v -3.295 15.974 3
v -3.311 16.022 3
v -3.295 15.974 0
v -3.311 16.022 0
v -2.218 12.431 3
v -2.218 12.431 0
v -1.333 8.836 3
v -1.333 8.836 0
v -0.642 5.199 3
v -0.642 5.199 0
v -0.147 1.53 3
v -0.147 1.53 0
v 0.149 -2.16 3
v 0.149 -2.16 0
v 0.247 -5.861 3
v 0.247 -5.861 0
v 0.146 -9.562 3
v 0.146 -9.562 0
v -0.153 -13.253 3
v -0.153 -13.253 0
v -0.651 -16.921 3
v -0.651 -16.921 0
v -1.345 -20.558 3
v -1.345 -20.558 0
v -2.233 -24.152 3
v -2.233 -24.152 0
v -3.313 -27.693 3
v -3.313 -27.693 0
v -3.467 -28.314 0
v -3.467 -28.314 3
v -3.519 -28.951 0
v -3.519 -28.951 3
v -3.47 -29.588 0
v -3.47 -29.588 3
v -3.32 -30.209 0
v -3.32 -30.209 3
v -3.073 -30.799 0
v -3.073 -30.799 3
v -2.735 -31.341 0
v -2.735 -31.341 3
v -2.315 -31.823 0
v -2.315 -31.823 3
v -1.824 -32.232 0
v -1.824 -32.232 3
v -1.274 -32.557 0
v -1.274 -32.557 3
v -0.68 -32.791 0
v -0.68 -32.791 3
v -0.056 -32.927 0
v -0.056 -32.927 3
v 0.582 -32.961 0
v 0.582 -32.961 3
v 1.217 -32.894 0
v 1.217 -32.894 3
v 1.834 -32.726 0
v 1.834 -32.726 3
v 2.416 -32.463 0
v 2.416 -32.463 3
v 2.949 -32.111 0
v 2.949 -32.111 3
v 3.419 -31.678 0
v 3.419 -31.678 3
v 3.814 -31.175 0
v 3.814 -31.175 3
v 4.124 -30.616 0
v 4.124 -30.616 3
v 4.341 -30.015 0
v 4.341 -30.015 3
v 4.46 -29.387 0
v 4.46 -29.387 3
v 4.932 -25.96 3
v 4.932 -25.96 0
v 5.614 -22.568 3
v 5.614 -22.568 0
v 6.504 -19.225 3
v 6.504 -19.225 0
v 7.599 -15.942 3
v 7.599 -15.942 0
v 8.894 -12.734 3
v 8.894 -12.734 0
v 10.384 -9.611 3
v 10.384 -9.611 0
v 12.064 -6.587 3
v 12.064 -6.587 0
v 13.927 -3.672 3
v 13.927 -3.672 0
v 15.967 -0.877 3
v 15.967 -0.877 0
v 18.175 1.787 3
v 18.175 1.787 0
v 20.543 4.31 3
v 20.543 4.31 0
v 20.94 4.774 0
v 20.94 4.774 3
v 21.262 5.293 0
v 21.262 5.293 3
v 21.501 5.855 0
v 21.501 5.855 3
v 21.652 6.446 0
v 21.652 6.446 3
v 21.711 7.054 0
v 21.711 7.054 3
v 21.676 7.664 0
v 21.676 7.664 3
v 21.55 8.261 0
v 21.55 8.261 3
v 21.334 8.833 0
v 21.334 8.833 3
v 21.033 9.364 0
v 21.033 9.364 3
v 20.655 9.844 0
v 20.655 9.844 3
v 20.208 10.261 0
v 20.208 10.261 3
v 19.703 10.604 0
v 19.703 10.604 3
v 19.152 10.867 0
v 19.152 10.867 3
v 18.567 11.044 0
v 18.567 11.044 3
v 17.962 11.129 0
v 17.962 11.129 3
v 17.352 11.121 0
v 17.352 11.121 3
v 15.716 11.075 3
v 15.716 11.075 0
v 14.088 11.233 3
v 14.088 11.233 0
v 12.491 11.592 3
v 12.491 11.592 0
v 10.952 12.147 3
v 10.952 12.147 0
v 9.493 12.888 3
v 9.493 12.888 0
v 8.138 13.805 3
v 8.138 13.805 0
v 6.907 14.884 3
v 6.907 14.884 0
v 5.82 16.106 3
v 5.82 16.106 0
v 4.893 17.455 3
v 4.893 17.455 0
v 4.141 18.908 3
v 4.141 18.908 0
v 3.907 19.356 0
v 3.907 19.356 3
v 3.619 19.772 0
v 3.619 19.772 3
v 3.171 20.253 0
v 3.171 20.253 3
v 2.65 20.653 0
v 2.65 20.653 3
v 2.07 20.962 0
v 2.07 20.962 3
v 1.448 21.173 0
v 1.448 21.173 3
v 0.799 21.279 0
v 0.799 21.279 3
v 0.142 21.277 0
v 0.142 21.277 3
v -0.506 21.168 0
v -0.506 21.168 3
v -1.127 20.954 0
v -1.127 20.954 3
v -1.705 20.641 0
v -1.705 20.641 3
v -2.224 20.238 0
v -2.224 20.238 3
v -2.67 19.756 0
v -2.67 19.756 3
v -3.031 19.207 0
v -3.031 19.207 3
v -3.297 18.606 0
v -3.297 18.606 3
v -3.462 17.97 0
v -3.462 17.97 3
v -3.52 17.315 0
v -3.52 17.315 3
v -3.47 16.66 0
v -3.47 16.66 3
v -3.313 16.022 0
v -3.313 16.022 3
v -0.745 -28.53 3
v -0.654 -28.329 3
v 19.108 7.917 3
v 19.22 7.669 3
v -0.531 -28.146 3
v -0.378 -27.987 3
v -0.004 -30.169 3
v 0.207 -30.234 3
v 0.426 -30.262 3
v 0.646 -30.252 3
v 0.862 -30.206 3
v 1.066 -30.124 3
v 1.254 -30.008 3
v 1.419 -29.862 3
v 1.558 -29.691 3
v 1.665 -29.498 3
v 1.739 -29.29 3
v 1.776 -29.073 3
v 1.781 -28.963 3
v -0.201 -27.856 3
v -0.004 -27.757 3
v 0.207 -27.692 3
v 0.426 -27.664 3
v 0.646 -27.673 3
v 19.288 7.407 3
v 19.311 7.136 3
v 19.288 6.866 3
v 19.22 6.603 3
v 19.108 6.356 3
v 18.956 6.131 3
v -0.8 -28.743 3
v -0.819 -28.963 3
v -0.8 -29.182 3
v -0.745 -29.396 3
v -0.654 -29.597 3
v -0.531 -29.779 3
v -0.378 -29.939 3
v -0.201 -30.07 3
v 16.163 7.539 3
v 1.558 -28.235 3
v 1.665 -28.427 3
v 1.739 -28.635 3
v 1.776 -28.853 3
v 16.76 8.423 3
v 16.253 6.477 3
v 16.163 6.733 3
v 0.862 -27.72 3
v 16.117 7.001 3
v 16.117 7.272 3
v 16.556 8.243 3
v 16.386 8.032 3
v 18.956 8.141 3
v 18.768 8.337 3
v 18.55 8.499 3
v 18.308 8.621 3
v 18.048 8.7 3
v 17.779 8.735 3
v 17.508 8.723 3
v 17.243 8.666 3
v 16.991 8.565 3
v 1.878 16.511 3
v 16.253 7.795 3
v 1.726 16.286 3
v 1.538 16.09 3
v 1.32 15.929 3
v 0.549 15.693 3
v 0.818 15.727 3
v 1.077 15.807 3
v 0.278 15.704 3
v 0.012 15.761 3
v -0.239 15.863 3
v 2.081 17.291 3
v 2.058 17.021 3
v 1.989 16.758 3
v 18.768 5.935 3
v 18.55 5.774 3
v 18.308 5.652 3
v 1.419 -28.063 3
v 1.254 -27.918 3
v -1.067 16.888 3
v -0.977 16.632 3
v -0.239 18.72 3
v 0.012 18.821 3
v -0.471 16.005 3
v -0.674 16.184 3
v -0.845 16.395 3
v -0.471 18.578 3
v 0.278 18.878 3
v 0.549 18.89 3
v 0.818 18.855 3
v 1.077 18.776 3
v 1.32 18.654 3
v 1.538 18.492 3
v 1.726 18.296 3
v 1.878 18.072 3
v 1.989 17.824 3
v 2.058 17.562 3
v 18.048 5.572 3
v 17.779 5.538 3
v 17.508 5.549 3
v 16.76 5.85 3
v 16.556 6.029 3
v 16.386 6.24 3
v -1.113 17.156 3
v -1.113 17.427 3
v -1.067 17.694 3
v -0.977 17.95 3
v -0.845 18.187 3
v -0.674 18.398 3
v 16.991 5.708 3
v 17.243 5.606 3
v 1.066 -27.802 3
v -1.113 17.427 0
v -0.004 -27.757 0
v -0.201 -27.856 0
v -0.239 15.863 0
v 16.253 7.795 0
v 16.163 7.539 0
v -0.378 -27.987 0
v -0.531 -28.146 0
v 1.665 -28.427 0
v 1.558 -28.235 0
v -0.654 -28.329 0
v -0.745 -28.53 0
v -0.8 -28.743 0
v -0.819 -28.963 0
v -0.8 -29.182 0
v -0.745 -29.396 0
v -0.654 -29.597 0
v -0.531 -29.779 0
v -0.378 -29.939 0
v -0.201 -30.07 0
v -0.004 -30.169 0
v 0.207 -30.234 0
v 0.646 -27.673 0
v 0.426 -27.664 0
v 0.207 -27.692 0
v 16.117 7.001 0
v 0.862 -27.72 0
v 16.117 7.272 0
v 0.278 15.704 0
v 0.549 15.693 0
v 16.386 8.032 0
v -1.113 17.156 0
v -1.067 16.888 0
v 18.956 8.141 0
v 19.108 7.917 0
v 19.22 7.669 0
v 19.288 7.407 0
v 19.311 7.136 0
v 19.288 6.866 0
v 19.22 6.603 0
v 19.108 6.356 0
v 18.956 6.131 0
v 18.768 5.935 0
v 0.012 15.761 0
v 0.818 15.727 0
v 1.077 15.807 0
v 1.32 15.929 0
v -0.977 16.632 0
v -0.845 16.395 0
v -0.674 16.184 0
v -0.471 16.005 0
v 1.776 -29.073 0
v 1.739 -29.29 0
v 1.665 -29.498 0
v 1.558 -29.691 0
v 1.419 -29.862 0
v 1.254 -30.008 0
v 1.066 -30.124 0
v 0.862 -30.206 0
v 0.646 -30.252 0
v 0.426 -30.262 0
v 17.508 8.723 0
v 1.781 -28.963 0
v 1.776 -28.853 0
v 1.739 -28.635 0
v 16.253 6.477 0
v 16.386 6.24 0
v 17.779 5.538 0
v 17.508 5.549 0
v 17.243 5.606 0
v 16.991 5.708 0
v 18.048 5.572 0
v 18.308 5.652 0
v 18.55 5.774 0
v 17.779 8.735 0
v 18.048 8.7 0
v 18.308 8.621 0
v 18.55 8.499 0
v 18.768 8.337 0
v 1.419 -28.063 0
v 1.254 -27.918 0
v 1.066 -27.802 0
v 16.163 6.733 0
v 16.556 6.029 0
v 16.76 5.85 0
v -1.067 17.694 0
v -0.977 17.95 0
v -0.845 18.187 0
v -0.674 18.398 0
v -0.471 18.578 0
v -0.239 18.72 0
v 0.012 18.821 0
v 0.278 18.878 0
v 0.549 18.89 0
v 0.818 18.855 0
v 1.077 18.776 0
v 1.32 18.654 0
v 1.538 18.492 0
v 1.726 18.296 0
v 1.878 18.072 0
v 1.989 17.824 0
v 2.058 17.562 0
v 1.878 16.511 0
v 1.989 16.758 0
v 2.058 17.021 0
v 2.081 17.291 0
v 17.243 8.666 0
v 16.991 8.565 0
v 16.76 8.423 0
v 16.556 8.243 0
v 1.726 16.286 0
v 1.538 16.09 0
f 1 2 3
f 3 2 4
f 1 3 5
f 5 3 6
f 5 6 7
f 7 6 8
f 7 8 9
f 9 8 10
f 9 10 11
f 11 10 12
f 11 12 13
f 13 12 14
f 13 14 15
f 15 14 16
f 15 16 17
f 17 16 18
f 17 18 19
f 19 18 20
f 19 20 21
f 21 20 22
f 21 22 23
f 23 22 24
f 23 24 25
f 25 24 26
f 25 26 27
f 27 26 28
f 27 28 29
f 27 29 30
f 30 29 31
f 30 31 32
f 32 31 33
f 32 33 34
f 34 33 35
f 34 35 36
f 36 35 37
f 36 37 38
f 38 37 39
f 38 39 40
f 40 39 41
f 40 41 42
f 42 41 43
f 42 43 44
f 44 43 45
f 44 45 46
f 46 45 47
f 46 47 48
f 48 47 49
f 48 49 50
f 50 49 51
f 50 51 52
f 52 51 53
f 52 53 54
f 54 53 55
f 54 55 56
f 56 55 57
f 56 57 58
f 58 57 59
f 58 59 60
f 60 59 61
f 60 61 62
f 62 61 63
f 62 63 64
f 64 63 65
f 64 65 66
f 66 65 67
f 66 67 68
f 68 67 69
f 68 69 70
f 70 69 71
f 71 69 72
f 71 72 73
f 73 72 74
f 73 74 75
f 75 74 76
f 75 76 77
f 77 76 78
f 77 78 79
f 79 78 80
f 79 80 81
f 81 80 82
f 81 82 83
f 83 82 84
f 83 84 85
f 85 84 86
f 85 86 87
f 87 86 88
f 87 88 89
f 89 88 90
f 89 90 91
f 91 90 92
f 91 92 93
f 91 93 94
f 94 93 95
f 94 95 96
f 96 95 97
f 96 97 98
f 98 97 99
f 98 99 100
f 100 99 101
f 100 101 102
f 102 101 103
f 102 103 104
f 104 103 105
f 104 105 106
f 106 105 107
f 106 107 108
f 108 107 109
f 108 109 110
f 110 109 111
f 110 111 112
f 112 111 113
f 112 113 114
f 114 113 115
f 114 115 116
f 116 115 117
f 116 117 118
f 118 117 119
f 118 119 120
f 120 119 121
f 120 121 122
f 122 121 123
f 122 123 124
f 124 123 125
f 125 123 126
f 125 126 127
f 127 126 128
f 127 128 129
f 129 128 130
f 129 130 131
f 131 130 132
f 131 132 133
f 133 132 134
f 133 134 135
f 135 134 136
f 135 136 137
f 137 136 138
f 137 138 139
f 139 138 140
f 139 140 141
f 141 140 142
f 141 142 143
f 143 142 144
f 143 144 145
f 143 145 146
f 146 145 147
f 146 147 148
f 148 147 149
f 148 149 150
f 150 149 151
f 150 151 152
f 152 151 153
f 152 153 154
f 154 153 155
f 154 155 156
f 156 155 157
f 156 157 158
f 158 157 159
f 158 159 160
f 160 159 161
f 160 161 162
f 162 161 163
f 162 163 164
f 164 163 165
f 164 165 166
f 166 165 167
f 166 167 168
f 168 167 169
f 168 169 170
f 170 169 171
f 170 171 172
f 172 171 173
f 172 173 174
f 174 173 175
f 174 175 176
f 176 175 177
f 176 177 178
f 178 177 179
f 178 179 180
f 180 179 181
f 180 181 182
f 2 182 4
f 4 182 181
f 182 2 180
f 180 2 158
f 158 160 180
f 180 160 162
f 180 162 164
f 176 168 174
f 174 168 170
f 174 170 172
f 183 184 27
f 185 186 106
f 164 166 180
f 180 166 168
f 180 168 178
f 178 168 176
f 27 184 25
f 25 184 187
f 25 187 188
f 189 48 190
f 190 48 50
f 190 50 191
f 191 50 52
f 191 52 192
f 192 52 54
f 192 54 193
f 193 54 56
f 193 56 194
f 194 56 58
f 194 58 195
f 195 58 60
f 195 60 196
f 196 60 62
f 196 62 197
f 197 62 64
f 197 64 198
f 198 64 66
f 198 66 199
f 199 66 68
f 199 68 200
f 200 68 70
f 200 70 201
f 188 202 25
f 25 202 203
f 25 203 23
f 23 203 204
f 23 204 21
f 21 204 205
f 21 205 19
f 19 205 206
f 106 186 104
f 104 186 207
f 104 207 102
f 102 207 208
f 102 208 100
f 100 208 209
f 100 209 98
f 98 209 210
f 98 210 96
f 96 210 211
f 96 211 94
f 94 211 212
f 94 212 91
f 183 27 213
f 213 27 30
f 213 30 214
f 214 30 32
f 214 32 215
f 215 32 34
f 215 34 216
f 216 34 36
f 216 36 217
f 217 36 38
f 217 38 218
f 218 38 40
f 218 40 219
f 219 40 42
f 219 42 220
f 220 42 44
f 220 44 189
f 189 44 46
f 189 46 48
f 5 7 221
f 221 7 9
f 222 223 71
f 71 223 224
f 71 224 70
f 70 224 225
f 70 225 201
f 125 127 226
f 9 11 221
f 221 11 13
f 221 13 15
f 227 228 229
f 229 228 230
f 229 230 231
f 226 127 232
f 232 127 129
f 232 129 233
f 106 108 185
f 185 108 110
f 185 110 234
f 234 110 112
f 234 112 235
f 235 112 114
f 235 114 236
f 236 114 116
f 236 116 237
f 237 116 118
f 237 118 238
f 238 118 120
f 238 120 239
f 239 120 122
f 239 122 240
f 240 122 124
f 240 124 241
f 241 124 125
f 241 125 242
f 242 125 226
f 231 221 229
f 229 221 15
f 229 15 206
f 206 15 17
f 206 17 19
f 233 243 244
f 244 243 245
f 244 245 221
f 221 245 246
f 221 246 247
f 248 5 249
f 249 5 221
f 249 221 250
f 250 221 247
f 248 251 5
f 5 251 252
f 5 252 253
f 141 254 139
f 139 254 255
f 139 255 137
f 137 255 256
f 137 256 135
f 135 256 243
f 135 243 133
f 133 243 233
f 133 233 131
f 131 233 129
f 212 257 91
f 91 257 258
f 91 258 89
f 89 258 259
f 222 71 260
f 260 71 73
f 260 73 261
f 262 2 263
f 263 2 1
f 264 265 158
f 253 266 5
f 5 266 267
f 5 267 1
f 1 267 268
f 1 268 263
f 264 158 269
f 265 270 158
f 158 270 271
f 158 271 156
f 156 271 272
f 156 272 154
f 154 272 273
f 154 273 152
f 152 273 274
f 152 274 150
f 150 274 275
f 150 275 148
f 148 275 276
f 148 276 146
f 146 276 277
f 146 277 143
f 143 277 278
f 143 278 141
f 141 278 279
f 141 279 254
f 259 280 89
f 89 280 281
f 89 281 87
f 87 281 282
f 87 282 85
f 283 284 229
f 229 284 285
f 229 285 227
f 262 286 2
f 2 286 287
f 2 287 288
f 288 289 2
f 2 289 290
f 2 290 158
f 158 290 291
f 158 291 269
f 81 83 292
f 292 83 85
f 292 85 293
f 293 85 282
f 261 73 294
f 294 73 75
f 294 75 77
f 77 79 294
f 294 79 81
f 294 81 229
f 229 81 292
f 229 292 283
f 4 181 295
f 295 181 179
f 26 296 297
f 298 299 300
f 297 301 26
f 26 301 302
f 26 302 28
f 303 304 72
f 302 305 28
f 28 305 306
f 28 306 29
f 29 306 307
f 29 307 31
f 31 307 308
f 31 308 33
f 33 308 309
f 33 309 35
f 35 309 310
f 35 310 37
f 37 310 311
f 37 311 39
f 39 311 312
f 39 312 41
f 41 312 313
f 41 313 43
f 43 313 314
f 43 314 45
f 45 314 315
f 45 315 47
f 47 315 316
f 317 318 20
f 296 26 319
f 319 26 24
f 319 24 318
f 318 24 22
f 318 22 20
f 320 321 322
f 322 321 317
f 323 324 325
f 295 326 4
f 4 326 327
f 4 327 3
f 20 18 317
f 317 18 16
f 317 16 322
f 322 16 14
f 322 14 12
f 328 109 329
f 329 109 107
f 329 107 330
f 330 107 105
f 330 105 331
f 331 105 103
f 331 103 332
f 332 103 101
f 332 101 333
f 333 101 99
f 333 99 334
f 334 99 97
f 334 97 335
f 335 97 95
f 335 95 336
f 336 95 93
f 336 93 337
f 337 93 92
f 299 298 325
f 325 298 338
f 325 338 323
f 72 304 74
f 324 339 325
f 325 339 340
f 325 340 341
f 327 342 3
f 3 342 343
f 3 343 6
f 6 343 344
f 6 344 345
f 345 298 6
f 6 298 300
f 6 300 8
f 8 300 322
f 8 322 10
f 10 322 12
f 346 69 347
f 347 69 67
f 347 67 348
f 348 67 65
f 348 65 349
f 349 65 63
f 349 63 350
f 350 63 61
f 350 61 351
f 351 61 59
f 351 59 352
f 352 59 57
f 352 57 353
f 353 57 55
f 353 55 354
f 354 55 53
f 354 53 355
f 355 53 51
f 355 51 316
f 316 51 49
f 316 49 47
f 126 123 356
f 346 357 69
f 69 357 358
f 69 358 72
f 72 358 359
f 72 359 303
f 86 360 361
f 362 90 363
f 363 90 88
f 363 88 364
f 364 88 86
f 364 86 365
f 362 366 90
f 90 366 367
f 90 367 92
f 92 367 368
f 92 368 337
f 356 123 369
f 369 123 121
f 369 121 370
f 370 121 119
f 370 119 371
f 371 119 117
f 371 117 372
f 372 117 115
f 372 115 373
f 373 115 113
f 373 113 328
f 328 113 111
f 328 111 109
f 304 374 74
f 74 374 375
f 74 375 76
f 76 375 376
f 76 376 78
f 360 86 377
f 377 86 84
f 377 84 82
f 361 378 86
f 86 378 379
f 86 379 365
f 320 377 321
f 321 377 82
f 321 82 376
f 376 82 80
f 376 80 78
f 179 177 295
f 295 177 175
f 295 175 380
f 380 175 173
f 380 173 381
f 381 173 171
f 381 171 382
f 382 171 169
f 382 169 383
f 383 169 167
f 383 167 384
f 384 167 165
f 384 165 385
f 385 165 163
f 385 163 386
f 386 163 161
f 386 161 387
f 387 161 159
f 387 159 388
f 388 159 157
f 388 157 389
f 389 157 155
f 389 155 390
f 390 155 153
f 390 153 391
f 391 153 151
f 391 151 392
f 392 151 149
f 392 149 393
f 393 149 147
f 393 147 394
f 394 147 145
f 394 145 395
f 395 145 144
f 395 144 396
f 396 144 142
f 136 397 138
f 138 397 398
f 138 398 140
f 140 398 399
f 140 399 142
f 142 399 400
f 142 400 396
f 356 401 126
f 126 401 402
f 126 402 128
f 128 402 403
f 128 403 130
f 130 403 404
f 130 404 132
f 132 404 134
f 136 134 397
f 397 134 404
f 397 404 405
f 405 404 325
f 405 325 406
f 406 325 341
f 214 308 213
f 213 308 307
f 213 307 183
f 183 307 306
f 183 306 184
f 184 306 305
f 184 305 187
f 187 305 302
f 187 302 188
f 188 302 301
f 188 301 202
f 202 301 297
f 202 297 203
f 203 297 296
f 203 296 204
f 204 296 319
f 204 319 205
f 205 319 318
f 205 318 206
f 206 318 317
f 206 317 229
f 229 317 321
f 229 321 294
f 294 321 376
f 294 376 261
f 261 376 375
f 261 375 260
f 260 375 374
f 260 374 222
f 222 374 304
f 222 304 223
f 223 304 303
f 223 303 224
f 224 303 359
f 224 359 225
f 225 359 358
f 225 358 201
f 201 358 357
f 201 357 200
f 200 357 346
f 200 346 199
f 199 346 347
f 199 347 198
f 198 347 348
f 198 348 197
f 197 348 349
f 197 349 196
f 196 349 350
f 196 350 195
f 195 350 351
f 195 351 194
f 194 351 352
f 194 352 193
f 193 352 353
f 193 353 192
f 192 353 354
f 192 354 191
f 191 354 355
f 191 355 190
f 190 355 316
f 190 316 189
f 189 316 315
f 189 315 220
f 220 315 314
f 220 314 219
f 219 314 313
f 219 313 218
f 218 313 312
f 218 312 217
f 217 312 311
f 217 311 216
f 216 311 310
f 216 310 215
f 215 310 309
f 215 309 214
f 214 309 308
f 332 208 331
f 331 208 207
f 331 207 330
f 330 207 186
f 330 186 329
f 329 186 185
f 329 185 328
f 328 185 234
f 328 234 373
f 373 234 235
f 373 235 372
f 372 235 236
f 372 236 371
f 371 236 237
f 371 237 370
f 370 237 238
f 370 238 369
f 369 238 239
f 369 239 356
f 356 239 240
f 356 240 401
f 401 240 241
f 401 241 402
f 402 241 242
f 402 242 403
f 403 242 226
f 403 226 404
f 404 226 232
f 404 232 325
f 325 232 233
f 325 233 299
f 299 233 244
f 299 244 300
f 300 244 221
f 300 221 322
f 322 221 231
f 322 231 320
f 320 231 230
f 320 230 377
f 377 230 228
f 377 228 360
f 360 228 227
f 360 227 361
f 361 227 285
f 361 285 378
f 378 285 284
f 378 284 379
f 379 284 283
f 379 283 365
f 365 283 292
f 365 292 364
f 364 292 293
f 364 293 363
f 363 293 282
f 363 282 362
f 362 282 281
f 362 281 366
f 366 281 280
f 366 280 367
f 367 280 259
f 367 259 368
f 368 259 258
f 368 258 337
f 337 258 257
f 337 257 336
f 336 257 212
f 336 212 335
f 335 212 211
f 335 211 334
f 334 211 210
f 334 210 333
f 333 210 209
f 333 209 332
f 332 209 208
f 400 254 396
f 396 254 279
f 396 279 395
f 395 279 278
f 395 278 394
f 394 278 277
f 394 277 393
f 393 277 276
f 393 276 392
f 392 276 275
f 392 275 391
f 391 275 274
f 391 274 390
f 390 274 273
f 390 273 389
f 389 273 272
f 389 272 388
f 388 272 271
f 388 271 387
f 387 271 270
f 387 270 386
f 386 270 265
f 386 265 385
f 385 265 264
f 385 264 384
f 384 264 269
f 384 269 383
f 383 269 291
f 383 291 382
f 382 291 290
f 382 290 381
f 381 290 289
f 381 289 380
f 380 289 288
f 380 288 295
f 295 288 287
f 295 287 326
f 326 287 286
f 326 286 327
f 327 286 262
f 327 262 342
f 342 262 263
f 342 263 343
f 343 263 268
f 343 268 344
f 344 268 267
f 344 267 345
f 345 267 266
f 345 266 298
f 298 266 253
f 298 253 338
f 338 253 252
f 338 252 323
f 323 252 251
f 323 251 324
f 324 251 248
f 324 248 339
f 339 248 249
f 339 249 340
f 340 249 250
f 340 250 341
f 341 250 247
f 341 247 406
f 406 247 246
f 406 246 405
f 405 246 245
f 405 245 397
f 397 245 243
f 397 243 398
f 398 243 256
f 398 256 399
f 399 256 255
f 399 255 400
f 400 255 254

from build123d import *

# Parameters (mm, degrees)
SKETCH_1_R          = 1.35
SKETCH_1_R_2        = 1.3
EXTRUDE_1_DEPTH     = 3
SKETCH_2_R          = 1.6
CUT_EXTRUDE_1_DEPTH = 40.58429055


with BuildPart() as part:
    # 草图1 → 凸台-拉伸1 (new body)
    with BuildSketch(Plane(origin=(0, 0, 0), x_dir=(-1, 0, 0), z_dir=(0, 0, -1))):
        with BuildLine():
            Line((3.311115848, 16.021732214), (3.313115848, 16.021732214))
            ThreePointArc((3.313115848, 16.021732214), (1.422584465, 20.809546819), (-3.619383376, 19.772320768))
            ThreePointArc((-3.619383376, 19.772320768), (-3.907451025, 19.356483629), (-4.140741668, 18.907619539))
            ThreePointArc((-4.140741668, 18.907619539), (-9.493299368, 12.888445888), (-17.351741668, 11.120619539))
            ThreePointArc((-17.351741668, 11.120619539), (-19.703460244, 10.604408599), (-21.333741668, 8.832619539))
            ThreePointArc((-21.333741668, 8.832619539), (-21.651545732, 6.446374123), (-20.542741668, 4.309619539))
            ThreePointArc((-20.542741668, 4.309619539), (-9.614805592, -11.161234041), (-4.459741668, -29.387380461))
            ThreePointArc((-4.459741668, -29.387380461), (-3.626617209, -31.434284825), (-1.833741668, -32.726380461))
            ThreePointArc((-1.833741668, -32.726380461), (0.370527809, -32.871130249), (2.315258332, -31.823380461))
            ThreePointArc((2.315258332, -31.823380461), (3.407459975, -29.901725556), (3.313258332, -27.693380461))
            ThreePointArc((3.313258332, -27.693380461), (-0.247316641, -5.861423686), (3.295002421, 15.973502613))
            Line((3.295002421, 15.973502613), (3.311115848, 16.021732214))
        make_face()
        with Locations(Location((-17.711384152, 7.136232214, 0), (0, 0, 180))):
            Circle(SKETCH_1_R, mode=Mode.SUBTRACT)
        with Locations(Location((-0.480884152, -28.962767786, 0), (0, 0, 180))):
            Circle(SKETCH_1_R_2, mode=Mode.SUBTRACT)
        with Locations(Location((-0.480884152, 17.291232214, 0), (0, 0, 180))):
            Circle(SKETCH_1_R_2, mode=Mode.SUBTRACT)
    extrude(amount=-EXTRUDE_1_DEPTH)

    # 草图2 → 切除-拉伸1 (cut, through all)
    with BuildSketch(Plane.XY.offset(3)):
        with Locations((0.480884152, 17.291232214)):
            Circle(SKETCH_2_R)
        with Locations((17.711384152, 7.136232214)):
            Circle(SKETCH_2_R)
    extrude(amount=-CUT_EXTRUDE_1_DEPTH, mode=Mode.SUBTRACT)


solid = part.part
